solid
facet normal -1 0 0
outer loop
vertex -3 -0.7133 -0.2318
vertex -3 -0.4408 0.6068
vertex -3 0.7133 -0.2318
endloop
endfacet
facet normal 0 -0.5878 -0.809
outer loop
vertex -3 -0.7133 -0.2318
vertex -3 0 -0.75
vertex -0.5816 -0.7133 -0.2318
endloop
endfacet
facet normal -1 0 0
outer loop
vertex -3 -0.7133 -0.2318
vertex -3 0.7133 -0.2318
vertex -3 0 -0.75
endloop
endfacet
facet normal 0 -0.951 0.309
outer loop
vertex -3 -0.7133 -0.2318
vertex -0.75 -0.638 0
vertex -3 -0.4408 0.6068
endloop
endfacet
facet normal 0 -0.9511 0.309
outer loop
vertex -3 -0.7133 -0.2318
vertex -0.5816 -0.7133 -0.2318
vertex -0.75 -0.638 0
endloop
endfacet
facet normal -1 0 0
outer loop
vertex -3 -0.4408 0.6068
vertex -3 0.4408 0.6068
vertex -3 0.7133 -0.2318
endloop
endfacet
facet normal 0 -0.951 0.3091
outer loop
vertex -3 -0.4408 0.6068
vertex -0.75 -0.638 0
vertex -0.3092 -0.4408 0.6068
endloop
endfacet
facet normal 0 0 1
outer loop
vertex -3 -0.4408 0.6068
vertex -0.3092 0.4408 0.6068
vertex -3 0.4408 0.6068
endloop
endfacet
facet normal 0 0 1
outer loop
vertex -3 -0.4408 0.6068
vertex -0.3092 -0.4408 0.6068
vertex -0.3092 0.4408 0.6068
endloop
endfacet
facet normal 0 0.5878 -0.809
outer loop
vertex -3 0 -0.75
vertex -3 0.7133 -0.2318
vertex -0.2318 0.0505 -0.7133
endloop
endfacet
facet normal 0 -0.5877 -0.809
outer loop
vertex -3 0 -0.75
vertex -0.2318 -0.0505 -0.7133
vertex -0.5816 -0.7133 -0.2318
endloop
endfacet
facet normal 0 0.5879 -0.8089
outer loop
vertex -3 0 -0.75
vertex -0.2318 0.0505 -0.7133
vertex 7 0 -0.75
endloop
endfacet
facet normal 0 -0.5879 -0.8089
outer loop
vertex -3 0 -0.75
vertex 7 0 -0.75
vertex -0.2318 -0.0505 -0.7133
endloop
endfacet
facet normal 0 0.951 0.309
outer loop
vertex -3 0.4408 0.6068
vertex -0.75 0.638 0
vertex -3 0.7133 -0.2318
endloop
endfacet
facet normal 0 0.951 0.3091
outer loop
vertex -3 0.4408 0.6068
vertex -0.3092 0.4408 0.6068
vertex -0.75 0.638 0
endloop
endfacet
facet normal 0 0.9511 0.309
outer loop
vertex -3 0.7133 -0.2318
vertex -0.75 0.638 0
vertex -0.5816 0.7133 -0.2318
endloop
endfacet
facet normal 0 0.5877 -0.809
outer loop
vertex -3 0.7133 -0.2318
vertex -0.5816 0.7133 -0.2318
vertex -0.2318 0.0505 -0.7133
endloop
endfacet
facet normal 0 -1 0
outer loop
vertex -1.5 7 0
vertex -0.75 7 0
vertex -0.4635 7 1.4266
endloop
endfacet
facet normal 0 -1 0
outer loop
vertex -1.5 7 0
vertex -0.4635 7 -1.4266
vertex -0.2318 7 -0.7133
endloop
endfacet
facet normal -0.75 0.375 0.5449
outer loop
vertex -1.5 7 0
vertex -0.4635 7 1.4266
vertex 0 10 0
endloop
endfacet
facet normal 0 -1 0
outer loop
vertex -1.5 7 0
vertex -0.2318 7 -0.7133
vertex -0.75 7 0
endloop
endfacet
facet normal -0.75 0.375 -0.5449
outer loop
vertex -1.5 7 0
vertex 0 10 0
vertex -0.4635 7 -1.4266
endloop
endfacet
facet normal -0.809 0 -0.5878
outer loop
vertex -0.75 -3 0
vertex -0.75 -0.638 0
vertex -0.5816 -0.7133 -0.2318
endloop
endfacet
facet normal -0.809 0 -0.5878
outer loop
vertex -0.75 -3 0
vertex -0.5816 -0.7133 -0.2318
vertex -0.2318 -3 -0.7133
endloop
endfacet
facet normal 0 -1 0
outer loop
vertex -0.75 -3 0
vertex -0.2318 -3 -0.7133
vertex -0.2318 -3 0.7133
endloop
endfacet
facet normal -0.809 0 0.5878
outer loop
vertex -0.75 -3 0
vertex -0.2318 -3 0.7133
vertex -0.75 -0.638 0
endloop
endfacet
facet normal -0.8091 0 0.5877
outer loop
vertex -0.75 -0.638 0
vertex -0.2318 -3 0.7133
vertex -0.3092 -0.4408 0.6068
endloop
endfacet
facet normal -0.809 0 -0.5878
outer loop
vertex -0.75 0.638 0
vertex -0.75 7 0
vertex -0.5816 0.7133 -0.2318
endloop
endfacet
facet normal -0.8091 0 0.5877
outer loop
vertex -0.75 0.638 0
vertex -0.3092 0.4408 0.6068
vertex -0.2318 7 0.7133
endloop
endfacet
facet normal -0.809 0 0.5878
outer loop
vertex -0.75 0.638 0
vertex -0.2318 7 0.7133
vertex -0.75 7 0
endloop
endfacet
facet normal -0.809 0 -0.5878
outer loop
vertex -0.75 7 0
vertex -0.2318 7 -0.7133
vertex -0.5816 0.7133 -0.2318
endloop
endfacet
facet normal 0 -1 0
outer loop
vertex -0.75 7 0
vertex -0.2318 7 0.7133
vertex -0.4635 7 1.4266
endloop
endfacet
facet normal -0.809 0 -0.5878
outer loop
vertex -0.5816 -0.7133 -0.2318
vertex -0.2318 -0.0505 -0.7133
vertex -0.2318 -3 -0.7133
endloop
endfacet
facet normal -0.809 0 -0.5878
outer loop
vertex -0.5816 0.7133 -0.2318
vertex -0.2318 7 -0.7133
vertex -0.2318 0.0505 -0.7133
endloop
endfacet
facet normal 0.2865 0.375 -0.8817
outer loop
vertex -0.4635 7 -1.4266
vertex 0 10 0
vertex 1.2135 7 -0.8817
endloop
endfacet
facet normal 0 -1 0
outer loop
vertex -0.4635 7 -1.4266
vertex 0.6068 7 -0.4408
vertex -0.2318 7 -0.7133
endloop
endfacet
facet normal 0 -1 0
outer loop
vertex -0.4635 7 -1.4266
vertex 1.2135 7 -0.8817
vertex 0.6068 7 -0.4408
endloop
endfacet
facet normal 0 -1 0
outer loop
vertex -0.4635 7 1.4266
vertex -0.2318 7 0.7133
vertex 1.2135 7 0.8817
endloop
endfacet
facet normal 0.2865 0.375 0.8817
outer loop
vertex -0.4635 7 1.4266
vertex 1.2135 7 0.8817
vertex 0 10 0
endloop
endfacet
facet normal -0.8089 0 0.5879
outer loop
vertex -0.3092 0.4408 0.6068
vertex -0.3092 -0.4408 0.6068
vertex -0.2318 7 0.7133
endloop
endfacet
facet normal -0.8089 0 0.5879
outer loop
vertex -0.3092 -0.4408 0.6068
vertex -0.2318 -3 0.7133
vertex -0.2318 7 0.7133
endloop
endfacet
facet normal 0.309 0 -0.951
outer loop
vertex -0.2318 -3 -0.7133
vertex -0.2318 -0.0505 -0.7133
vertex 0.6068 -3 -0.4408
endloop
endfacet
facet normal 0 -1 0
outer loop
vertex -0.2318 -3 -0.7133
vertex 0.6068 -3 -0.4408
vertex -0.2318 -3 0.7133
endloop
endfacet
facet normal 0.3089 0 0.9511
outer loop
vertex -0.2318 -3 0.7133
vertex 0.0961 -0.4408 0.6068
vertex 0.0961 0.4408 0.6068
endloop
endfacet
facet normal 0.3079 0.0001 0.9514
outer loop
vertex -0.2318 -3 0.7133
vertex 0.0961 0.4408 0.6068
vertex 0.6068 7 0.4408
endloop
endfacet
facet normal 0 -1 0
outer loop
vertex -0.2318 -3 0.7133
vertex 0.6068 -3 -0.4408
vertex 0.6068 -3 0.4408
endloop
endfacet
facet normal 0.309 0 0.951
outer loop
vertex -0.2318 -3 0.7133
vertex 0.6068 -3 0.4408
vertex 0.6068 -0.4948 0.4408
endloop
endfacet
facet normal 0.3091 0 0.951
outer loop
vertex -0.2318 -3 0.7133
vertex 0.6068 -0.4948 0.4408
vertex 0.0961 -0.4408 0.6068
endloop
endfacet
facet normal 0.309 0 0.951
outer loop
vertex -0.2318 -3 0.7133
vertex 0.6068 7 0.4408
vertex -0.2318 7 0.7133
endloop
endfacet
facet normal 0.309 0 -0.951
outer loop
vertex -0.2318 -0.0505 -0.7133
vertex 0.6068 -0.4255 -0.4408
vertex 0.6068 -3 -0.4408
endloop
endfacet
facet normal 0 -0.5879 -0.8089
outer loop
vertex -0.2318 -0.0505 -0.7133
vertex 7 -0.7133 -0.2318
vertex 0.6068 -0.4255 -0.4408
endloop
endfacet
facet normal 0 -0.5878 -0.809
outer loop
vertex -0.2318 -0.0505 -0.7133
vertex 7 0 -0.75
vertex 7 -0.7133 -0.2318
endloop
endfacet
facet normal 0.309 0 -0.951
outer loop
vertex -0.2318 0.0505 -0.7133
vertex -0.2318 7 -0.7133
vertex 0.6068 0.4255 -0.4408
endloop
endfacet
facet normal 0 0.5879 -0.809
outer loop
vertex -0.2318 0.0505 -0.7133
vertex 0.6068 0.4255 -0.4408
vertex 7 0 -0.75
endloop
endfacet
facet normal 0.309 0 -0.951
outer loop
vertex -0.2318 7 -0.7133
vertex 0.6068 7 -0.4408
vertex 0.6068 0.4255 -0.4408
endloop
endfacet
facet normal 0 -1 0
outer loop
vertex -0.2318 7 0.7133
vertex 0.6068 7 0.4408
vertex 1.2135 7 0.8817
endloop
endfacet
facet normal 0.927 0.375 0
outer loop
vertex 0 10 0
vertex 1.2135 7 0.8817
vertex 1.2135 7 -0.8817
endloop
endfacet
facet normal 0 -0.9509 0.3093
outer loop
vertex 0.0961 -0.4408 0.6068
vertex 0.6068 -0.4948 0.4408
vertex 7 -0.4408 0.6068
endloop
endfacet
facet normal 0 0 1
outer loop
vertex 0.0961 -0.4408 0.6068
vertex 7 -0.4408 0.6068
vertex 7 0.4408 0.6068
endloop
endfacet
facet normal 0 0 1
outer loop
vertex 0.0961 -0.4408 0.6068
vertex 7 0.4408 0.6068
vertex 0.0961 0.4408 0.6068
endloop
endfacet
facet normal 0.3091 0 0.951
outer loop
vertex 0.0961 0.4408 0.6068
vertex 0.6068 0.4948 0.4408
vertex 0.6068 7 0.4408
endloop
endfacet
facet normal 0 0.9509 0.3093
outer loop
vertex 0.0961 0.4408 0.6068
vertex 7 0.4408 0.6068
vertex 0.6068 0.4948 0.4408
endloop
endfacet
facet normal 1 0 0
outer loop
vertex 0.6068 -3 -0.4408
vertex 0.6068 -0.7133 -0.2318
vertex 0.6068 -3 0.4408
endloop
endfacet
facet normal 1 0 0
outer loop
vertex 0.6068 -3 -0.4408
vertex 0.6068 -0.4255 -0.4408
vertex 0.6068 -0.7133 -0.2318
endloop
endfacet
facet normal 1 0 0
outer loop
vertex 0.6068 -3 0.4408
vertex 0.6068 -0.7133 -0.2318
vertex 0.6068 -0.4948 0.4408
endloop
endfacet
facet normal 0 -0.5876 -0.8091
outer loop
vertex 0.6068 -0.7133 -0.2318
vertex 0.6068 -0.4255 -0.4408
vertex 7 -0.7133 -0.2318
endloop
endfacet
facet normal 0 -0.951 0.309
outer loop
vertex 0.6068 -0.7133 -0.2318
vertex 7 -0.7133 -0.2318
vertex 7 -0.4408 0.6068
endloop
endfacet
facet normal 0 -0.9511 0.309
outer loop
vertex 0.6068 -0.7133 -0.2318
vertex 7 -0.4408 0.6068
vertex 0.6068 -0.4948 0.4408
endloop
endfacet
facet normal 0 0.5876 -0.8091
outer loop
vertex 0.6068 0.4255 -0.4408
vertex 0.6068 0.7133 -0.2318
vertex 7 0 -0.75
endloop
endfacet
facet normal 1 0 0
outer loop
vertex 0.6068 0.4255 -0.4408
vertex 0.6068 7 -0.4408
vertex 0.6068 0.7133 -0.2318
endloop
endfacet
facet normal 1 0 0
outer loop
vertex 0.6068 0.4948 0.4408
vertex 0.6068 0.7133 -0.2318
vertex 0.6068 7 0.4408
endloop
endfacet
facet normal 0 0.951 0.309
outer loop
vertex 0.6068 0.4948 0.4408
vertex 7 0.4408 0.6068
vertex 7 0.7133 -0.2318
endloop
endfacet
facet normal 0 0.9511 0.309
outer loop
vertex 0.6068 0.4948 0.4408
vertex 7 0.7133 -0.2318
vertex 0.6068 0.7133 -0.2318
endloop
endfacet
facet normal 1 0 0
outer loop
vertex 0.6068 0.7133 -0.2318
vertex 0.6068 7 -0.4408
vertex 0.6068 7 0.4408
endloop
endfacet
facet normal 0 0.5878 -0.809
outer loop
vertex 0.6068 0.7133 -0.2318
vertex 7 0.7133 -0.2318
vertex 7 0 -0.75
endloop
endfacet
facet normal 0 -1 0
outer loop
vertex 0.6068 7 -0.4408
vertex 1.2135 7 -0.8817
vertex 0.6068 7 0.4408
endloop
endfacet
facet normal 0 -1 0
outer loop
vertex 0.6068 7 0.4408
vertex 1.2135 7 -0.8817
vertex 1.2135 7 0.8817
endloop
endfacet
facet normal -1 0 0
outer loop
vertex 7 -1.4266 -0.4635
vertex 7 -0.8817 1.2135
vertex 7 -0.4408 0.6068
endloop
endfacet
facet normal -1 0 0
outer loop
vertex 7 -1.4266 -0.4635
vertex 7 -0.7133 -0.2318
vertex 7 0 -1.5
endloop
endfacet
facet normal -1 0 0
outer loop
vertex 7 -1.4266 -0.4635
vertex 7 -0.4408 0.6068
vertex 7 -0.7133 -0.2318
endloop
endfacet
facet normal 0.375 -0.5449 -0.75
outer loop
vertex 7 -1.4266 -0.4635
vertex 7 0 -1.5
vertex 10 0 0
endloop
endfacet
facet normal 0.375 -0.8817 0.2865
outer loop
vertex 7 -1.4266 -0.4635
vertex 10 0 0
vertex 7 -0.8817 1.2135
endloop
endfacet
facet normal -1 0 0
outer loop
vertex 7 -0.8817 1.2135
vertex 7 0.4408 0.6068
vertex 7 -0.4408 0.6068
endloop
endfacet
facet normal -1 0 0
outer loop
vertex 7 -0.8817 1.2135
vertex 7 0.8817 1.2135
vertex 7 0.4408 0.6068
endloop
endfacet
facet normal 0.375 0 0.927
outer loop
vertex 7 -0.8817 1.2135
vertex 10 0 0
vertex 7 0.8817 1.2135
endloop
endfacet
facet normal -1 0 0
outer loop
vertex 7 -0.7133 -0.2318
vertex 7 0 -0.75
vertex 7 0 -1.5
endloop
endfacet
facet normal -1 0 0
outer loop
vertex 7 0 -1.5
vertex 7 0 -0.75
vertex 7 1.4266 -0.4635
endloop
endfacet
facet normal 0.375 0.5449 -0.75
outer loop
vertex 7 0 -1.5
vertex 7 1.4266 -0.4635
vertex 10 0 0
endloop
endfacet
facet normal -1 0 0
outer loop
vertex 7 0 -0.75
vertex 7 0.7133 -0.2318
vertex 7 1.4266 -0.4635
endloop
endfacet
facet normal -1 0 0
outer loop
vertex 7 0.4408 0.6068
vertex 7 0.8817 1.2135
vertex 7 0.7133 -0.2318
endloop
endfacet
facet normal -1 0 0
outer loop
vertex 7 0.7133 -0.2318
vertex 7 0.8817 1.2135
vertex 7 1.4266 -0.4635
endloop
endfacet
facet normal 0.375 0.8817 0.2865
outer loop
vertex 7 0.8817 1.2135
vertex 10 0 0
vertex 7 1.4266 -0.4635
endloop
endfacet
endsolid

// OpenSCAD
// Start: lazy_union
default_5_default_5();
// End: lazy_union

// Modules.

// 'PartMaterial undef-default - default 5.0'
module default_5_default_5() {
  // 'None : _combine_solids_and_holes'
  union() {
    // 'default : _combine_solids_and_holes'
    union() {
      // 'x_arrow'
      multmatrix(m=[[0.0, 0.0, -1.0, -3.0], [0.0, -1.0, 0.0, 0.0], [-1.0, 0.0, 0.0, 0.0], [0.0, 0.0, 0.0, 1.0]]) {
        // 'x_arrow'
        color(c=[1.0, 0.0, 0.0, 1.0]) {
          // 'x_arrow : _combine_solids_and_holes'
          union() {
            // 'stem'
            multmatrix(m=[[1.0, 0.0, 0.0, 0.0], [-0.0, -1.0, -0.0, -0.0], [-0.0, -0.0, -1.0, -0.0], [0.0, 0.0, 0.0, 1.0]]) {
              // 'stem : _combine_solids_and_holes'
              union() {
                // 'stem'
                cylinder(h=10.0, r1=0.75, r2=0.75, center=false);
              }
            }
            // 'head'
            multmatrix(m=[[1.0, 0.0, 0.0, 0.0], [0.0, -1.0, 0.0, 0.0], [0.0, 0.0, -1.0, -10.0], [0.0, 0.0, 0.0, 1.0]]) {
              // 'head : _combine_solids_and_holes'
              union() {
                // 'head'
                cylinder(h=3.0, r1=1.5, r2=0.0, center=false);
              }
            }
          }
        }
      }
      // 'y_arrow'
      multmatrix(m=[[-1.0, 0.0, 0.0, 0.0], [0.0, 0.0, -1.0, -3.0], [0.0, -1.0, 0.0, 0.0], [0.0, 0.0, 0.0, 1.0]]) {
        // 'y_arrow'
        color(c=[0.0, 0.5019607843137255, 0.0, 1.0]) {
          // 'y_arrow : _combine_solids_and_holes'
          union() {
            // 'stem'
            multmatrix(m=[[1.0, 0.0, 0.0, 0.0], [-0.0, -1.0, -0.0, -0.0], [-0.0, -0.0, -1.0, -0.0], [0.0, 0.0, 0.0, 1.0]]) {
              // 'stem : _combine_solids_and_holes'
              union() {
                // 'stem'
                cylinder(h=10.0, r1=0.75, r2=0.75, center=false);
              }
            }
            // 'head'
            multmatrix(m=[[1.0, 0.0, 0.0, 0.0], [0.0, -1.0, 0.0, 0.0], [0.0, 0.0, -1.0, -10.0], [0.0, 0.0, 0.0, 1.0]]) {
              // 'head : _combine_solids_and_holes'
              union() {
                // 'head'
                cylinder(h=3.0, r1=1.5, r2=0.0, center=false);
              }
            }
          }
        }
      }
    }
  }
} // end module default_5_default_5
